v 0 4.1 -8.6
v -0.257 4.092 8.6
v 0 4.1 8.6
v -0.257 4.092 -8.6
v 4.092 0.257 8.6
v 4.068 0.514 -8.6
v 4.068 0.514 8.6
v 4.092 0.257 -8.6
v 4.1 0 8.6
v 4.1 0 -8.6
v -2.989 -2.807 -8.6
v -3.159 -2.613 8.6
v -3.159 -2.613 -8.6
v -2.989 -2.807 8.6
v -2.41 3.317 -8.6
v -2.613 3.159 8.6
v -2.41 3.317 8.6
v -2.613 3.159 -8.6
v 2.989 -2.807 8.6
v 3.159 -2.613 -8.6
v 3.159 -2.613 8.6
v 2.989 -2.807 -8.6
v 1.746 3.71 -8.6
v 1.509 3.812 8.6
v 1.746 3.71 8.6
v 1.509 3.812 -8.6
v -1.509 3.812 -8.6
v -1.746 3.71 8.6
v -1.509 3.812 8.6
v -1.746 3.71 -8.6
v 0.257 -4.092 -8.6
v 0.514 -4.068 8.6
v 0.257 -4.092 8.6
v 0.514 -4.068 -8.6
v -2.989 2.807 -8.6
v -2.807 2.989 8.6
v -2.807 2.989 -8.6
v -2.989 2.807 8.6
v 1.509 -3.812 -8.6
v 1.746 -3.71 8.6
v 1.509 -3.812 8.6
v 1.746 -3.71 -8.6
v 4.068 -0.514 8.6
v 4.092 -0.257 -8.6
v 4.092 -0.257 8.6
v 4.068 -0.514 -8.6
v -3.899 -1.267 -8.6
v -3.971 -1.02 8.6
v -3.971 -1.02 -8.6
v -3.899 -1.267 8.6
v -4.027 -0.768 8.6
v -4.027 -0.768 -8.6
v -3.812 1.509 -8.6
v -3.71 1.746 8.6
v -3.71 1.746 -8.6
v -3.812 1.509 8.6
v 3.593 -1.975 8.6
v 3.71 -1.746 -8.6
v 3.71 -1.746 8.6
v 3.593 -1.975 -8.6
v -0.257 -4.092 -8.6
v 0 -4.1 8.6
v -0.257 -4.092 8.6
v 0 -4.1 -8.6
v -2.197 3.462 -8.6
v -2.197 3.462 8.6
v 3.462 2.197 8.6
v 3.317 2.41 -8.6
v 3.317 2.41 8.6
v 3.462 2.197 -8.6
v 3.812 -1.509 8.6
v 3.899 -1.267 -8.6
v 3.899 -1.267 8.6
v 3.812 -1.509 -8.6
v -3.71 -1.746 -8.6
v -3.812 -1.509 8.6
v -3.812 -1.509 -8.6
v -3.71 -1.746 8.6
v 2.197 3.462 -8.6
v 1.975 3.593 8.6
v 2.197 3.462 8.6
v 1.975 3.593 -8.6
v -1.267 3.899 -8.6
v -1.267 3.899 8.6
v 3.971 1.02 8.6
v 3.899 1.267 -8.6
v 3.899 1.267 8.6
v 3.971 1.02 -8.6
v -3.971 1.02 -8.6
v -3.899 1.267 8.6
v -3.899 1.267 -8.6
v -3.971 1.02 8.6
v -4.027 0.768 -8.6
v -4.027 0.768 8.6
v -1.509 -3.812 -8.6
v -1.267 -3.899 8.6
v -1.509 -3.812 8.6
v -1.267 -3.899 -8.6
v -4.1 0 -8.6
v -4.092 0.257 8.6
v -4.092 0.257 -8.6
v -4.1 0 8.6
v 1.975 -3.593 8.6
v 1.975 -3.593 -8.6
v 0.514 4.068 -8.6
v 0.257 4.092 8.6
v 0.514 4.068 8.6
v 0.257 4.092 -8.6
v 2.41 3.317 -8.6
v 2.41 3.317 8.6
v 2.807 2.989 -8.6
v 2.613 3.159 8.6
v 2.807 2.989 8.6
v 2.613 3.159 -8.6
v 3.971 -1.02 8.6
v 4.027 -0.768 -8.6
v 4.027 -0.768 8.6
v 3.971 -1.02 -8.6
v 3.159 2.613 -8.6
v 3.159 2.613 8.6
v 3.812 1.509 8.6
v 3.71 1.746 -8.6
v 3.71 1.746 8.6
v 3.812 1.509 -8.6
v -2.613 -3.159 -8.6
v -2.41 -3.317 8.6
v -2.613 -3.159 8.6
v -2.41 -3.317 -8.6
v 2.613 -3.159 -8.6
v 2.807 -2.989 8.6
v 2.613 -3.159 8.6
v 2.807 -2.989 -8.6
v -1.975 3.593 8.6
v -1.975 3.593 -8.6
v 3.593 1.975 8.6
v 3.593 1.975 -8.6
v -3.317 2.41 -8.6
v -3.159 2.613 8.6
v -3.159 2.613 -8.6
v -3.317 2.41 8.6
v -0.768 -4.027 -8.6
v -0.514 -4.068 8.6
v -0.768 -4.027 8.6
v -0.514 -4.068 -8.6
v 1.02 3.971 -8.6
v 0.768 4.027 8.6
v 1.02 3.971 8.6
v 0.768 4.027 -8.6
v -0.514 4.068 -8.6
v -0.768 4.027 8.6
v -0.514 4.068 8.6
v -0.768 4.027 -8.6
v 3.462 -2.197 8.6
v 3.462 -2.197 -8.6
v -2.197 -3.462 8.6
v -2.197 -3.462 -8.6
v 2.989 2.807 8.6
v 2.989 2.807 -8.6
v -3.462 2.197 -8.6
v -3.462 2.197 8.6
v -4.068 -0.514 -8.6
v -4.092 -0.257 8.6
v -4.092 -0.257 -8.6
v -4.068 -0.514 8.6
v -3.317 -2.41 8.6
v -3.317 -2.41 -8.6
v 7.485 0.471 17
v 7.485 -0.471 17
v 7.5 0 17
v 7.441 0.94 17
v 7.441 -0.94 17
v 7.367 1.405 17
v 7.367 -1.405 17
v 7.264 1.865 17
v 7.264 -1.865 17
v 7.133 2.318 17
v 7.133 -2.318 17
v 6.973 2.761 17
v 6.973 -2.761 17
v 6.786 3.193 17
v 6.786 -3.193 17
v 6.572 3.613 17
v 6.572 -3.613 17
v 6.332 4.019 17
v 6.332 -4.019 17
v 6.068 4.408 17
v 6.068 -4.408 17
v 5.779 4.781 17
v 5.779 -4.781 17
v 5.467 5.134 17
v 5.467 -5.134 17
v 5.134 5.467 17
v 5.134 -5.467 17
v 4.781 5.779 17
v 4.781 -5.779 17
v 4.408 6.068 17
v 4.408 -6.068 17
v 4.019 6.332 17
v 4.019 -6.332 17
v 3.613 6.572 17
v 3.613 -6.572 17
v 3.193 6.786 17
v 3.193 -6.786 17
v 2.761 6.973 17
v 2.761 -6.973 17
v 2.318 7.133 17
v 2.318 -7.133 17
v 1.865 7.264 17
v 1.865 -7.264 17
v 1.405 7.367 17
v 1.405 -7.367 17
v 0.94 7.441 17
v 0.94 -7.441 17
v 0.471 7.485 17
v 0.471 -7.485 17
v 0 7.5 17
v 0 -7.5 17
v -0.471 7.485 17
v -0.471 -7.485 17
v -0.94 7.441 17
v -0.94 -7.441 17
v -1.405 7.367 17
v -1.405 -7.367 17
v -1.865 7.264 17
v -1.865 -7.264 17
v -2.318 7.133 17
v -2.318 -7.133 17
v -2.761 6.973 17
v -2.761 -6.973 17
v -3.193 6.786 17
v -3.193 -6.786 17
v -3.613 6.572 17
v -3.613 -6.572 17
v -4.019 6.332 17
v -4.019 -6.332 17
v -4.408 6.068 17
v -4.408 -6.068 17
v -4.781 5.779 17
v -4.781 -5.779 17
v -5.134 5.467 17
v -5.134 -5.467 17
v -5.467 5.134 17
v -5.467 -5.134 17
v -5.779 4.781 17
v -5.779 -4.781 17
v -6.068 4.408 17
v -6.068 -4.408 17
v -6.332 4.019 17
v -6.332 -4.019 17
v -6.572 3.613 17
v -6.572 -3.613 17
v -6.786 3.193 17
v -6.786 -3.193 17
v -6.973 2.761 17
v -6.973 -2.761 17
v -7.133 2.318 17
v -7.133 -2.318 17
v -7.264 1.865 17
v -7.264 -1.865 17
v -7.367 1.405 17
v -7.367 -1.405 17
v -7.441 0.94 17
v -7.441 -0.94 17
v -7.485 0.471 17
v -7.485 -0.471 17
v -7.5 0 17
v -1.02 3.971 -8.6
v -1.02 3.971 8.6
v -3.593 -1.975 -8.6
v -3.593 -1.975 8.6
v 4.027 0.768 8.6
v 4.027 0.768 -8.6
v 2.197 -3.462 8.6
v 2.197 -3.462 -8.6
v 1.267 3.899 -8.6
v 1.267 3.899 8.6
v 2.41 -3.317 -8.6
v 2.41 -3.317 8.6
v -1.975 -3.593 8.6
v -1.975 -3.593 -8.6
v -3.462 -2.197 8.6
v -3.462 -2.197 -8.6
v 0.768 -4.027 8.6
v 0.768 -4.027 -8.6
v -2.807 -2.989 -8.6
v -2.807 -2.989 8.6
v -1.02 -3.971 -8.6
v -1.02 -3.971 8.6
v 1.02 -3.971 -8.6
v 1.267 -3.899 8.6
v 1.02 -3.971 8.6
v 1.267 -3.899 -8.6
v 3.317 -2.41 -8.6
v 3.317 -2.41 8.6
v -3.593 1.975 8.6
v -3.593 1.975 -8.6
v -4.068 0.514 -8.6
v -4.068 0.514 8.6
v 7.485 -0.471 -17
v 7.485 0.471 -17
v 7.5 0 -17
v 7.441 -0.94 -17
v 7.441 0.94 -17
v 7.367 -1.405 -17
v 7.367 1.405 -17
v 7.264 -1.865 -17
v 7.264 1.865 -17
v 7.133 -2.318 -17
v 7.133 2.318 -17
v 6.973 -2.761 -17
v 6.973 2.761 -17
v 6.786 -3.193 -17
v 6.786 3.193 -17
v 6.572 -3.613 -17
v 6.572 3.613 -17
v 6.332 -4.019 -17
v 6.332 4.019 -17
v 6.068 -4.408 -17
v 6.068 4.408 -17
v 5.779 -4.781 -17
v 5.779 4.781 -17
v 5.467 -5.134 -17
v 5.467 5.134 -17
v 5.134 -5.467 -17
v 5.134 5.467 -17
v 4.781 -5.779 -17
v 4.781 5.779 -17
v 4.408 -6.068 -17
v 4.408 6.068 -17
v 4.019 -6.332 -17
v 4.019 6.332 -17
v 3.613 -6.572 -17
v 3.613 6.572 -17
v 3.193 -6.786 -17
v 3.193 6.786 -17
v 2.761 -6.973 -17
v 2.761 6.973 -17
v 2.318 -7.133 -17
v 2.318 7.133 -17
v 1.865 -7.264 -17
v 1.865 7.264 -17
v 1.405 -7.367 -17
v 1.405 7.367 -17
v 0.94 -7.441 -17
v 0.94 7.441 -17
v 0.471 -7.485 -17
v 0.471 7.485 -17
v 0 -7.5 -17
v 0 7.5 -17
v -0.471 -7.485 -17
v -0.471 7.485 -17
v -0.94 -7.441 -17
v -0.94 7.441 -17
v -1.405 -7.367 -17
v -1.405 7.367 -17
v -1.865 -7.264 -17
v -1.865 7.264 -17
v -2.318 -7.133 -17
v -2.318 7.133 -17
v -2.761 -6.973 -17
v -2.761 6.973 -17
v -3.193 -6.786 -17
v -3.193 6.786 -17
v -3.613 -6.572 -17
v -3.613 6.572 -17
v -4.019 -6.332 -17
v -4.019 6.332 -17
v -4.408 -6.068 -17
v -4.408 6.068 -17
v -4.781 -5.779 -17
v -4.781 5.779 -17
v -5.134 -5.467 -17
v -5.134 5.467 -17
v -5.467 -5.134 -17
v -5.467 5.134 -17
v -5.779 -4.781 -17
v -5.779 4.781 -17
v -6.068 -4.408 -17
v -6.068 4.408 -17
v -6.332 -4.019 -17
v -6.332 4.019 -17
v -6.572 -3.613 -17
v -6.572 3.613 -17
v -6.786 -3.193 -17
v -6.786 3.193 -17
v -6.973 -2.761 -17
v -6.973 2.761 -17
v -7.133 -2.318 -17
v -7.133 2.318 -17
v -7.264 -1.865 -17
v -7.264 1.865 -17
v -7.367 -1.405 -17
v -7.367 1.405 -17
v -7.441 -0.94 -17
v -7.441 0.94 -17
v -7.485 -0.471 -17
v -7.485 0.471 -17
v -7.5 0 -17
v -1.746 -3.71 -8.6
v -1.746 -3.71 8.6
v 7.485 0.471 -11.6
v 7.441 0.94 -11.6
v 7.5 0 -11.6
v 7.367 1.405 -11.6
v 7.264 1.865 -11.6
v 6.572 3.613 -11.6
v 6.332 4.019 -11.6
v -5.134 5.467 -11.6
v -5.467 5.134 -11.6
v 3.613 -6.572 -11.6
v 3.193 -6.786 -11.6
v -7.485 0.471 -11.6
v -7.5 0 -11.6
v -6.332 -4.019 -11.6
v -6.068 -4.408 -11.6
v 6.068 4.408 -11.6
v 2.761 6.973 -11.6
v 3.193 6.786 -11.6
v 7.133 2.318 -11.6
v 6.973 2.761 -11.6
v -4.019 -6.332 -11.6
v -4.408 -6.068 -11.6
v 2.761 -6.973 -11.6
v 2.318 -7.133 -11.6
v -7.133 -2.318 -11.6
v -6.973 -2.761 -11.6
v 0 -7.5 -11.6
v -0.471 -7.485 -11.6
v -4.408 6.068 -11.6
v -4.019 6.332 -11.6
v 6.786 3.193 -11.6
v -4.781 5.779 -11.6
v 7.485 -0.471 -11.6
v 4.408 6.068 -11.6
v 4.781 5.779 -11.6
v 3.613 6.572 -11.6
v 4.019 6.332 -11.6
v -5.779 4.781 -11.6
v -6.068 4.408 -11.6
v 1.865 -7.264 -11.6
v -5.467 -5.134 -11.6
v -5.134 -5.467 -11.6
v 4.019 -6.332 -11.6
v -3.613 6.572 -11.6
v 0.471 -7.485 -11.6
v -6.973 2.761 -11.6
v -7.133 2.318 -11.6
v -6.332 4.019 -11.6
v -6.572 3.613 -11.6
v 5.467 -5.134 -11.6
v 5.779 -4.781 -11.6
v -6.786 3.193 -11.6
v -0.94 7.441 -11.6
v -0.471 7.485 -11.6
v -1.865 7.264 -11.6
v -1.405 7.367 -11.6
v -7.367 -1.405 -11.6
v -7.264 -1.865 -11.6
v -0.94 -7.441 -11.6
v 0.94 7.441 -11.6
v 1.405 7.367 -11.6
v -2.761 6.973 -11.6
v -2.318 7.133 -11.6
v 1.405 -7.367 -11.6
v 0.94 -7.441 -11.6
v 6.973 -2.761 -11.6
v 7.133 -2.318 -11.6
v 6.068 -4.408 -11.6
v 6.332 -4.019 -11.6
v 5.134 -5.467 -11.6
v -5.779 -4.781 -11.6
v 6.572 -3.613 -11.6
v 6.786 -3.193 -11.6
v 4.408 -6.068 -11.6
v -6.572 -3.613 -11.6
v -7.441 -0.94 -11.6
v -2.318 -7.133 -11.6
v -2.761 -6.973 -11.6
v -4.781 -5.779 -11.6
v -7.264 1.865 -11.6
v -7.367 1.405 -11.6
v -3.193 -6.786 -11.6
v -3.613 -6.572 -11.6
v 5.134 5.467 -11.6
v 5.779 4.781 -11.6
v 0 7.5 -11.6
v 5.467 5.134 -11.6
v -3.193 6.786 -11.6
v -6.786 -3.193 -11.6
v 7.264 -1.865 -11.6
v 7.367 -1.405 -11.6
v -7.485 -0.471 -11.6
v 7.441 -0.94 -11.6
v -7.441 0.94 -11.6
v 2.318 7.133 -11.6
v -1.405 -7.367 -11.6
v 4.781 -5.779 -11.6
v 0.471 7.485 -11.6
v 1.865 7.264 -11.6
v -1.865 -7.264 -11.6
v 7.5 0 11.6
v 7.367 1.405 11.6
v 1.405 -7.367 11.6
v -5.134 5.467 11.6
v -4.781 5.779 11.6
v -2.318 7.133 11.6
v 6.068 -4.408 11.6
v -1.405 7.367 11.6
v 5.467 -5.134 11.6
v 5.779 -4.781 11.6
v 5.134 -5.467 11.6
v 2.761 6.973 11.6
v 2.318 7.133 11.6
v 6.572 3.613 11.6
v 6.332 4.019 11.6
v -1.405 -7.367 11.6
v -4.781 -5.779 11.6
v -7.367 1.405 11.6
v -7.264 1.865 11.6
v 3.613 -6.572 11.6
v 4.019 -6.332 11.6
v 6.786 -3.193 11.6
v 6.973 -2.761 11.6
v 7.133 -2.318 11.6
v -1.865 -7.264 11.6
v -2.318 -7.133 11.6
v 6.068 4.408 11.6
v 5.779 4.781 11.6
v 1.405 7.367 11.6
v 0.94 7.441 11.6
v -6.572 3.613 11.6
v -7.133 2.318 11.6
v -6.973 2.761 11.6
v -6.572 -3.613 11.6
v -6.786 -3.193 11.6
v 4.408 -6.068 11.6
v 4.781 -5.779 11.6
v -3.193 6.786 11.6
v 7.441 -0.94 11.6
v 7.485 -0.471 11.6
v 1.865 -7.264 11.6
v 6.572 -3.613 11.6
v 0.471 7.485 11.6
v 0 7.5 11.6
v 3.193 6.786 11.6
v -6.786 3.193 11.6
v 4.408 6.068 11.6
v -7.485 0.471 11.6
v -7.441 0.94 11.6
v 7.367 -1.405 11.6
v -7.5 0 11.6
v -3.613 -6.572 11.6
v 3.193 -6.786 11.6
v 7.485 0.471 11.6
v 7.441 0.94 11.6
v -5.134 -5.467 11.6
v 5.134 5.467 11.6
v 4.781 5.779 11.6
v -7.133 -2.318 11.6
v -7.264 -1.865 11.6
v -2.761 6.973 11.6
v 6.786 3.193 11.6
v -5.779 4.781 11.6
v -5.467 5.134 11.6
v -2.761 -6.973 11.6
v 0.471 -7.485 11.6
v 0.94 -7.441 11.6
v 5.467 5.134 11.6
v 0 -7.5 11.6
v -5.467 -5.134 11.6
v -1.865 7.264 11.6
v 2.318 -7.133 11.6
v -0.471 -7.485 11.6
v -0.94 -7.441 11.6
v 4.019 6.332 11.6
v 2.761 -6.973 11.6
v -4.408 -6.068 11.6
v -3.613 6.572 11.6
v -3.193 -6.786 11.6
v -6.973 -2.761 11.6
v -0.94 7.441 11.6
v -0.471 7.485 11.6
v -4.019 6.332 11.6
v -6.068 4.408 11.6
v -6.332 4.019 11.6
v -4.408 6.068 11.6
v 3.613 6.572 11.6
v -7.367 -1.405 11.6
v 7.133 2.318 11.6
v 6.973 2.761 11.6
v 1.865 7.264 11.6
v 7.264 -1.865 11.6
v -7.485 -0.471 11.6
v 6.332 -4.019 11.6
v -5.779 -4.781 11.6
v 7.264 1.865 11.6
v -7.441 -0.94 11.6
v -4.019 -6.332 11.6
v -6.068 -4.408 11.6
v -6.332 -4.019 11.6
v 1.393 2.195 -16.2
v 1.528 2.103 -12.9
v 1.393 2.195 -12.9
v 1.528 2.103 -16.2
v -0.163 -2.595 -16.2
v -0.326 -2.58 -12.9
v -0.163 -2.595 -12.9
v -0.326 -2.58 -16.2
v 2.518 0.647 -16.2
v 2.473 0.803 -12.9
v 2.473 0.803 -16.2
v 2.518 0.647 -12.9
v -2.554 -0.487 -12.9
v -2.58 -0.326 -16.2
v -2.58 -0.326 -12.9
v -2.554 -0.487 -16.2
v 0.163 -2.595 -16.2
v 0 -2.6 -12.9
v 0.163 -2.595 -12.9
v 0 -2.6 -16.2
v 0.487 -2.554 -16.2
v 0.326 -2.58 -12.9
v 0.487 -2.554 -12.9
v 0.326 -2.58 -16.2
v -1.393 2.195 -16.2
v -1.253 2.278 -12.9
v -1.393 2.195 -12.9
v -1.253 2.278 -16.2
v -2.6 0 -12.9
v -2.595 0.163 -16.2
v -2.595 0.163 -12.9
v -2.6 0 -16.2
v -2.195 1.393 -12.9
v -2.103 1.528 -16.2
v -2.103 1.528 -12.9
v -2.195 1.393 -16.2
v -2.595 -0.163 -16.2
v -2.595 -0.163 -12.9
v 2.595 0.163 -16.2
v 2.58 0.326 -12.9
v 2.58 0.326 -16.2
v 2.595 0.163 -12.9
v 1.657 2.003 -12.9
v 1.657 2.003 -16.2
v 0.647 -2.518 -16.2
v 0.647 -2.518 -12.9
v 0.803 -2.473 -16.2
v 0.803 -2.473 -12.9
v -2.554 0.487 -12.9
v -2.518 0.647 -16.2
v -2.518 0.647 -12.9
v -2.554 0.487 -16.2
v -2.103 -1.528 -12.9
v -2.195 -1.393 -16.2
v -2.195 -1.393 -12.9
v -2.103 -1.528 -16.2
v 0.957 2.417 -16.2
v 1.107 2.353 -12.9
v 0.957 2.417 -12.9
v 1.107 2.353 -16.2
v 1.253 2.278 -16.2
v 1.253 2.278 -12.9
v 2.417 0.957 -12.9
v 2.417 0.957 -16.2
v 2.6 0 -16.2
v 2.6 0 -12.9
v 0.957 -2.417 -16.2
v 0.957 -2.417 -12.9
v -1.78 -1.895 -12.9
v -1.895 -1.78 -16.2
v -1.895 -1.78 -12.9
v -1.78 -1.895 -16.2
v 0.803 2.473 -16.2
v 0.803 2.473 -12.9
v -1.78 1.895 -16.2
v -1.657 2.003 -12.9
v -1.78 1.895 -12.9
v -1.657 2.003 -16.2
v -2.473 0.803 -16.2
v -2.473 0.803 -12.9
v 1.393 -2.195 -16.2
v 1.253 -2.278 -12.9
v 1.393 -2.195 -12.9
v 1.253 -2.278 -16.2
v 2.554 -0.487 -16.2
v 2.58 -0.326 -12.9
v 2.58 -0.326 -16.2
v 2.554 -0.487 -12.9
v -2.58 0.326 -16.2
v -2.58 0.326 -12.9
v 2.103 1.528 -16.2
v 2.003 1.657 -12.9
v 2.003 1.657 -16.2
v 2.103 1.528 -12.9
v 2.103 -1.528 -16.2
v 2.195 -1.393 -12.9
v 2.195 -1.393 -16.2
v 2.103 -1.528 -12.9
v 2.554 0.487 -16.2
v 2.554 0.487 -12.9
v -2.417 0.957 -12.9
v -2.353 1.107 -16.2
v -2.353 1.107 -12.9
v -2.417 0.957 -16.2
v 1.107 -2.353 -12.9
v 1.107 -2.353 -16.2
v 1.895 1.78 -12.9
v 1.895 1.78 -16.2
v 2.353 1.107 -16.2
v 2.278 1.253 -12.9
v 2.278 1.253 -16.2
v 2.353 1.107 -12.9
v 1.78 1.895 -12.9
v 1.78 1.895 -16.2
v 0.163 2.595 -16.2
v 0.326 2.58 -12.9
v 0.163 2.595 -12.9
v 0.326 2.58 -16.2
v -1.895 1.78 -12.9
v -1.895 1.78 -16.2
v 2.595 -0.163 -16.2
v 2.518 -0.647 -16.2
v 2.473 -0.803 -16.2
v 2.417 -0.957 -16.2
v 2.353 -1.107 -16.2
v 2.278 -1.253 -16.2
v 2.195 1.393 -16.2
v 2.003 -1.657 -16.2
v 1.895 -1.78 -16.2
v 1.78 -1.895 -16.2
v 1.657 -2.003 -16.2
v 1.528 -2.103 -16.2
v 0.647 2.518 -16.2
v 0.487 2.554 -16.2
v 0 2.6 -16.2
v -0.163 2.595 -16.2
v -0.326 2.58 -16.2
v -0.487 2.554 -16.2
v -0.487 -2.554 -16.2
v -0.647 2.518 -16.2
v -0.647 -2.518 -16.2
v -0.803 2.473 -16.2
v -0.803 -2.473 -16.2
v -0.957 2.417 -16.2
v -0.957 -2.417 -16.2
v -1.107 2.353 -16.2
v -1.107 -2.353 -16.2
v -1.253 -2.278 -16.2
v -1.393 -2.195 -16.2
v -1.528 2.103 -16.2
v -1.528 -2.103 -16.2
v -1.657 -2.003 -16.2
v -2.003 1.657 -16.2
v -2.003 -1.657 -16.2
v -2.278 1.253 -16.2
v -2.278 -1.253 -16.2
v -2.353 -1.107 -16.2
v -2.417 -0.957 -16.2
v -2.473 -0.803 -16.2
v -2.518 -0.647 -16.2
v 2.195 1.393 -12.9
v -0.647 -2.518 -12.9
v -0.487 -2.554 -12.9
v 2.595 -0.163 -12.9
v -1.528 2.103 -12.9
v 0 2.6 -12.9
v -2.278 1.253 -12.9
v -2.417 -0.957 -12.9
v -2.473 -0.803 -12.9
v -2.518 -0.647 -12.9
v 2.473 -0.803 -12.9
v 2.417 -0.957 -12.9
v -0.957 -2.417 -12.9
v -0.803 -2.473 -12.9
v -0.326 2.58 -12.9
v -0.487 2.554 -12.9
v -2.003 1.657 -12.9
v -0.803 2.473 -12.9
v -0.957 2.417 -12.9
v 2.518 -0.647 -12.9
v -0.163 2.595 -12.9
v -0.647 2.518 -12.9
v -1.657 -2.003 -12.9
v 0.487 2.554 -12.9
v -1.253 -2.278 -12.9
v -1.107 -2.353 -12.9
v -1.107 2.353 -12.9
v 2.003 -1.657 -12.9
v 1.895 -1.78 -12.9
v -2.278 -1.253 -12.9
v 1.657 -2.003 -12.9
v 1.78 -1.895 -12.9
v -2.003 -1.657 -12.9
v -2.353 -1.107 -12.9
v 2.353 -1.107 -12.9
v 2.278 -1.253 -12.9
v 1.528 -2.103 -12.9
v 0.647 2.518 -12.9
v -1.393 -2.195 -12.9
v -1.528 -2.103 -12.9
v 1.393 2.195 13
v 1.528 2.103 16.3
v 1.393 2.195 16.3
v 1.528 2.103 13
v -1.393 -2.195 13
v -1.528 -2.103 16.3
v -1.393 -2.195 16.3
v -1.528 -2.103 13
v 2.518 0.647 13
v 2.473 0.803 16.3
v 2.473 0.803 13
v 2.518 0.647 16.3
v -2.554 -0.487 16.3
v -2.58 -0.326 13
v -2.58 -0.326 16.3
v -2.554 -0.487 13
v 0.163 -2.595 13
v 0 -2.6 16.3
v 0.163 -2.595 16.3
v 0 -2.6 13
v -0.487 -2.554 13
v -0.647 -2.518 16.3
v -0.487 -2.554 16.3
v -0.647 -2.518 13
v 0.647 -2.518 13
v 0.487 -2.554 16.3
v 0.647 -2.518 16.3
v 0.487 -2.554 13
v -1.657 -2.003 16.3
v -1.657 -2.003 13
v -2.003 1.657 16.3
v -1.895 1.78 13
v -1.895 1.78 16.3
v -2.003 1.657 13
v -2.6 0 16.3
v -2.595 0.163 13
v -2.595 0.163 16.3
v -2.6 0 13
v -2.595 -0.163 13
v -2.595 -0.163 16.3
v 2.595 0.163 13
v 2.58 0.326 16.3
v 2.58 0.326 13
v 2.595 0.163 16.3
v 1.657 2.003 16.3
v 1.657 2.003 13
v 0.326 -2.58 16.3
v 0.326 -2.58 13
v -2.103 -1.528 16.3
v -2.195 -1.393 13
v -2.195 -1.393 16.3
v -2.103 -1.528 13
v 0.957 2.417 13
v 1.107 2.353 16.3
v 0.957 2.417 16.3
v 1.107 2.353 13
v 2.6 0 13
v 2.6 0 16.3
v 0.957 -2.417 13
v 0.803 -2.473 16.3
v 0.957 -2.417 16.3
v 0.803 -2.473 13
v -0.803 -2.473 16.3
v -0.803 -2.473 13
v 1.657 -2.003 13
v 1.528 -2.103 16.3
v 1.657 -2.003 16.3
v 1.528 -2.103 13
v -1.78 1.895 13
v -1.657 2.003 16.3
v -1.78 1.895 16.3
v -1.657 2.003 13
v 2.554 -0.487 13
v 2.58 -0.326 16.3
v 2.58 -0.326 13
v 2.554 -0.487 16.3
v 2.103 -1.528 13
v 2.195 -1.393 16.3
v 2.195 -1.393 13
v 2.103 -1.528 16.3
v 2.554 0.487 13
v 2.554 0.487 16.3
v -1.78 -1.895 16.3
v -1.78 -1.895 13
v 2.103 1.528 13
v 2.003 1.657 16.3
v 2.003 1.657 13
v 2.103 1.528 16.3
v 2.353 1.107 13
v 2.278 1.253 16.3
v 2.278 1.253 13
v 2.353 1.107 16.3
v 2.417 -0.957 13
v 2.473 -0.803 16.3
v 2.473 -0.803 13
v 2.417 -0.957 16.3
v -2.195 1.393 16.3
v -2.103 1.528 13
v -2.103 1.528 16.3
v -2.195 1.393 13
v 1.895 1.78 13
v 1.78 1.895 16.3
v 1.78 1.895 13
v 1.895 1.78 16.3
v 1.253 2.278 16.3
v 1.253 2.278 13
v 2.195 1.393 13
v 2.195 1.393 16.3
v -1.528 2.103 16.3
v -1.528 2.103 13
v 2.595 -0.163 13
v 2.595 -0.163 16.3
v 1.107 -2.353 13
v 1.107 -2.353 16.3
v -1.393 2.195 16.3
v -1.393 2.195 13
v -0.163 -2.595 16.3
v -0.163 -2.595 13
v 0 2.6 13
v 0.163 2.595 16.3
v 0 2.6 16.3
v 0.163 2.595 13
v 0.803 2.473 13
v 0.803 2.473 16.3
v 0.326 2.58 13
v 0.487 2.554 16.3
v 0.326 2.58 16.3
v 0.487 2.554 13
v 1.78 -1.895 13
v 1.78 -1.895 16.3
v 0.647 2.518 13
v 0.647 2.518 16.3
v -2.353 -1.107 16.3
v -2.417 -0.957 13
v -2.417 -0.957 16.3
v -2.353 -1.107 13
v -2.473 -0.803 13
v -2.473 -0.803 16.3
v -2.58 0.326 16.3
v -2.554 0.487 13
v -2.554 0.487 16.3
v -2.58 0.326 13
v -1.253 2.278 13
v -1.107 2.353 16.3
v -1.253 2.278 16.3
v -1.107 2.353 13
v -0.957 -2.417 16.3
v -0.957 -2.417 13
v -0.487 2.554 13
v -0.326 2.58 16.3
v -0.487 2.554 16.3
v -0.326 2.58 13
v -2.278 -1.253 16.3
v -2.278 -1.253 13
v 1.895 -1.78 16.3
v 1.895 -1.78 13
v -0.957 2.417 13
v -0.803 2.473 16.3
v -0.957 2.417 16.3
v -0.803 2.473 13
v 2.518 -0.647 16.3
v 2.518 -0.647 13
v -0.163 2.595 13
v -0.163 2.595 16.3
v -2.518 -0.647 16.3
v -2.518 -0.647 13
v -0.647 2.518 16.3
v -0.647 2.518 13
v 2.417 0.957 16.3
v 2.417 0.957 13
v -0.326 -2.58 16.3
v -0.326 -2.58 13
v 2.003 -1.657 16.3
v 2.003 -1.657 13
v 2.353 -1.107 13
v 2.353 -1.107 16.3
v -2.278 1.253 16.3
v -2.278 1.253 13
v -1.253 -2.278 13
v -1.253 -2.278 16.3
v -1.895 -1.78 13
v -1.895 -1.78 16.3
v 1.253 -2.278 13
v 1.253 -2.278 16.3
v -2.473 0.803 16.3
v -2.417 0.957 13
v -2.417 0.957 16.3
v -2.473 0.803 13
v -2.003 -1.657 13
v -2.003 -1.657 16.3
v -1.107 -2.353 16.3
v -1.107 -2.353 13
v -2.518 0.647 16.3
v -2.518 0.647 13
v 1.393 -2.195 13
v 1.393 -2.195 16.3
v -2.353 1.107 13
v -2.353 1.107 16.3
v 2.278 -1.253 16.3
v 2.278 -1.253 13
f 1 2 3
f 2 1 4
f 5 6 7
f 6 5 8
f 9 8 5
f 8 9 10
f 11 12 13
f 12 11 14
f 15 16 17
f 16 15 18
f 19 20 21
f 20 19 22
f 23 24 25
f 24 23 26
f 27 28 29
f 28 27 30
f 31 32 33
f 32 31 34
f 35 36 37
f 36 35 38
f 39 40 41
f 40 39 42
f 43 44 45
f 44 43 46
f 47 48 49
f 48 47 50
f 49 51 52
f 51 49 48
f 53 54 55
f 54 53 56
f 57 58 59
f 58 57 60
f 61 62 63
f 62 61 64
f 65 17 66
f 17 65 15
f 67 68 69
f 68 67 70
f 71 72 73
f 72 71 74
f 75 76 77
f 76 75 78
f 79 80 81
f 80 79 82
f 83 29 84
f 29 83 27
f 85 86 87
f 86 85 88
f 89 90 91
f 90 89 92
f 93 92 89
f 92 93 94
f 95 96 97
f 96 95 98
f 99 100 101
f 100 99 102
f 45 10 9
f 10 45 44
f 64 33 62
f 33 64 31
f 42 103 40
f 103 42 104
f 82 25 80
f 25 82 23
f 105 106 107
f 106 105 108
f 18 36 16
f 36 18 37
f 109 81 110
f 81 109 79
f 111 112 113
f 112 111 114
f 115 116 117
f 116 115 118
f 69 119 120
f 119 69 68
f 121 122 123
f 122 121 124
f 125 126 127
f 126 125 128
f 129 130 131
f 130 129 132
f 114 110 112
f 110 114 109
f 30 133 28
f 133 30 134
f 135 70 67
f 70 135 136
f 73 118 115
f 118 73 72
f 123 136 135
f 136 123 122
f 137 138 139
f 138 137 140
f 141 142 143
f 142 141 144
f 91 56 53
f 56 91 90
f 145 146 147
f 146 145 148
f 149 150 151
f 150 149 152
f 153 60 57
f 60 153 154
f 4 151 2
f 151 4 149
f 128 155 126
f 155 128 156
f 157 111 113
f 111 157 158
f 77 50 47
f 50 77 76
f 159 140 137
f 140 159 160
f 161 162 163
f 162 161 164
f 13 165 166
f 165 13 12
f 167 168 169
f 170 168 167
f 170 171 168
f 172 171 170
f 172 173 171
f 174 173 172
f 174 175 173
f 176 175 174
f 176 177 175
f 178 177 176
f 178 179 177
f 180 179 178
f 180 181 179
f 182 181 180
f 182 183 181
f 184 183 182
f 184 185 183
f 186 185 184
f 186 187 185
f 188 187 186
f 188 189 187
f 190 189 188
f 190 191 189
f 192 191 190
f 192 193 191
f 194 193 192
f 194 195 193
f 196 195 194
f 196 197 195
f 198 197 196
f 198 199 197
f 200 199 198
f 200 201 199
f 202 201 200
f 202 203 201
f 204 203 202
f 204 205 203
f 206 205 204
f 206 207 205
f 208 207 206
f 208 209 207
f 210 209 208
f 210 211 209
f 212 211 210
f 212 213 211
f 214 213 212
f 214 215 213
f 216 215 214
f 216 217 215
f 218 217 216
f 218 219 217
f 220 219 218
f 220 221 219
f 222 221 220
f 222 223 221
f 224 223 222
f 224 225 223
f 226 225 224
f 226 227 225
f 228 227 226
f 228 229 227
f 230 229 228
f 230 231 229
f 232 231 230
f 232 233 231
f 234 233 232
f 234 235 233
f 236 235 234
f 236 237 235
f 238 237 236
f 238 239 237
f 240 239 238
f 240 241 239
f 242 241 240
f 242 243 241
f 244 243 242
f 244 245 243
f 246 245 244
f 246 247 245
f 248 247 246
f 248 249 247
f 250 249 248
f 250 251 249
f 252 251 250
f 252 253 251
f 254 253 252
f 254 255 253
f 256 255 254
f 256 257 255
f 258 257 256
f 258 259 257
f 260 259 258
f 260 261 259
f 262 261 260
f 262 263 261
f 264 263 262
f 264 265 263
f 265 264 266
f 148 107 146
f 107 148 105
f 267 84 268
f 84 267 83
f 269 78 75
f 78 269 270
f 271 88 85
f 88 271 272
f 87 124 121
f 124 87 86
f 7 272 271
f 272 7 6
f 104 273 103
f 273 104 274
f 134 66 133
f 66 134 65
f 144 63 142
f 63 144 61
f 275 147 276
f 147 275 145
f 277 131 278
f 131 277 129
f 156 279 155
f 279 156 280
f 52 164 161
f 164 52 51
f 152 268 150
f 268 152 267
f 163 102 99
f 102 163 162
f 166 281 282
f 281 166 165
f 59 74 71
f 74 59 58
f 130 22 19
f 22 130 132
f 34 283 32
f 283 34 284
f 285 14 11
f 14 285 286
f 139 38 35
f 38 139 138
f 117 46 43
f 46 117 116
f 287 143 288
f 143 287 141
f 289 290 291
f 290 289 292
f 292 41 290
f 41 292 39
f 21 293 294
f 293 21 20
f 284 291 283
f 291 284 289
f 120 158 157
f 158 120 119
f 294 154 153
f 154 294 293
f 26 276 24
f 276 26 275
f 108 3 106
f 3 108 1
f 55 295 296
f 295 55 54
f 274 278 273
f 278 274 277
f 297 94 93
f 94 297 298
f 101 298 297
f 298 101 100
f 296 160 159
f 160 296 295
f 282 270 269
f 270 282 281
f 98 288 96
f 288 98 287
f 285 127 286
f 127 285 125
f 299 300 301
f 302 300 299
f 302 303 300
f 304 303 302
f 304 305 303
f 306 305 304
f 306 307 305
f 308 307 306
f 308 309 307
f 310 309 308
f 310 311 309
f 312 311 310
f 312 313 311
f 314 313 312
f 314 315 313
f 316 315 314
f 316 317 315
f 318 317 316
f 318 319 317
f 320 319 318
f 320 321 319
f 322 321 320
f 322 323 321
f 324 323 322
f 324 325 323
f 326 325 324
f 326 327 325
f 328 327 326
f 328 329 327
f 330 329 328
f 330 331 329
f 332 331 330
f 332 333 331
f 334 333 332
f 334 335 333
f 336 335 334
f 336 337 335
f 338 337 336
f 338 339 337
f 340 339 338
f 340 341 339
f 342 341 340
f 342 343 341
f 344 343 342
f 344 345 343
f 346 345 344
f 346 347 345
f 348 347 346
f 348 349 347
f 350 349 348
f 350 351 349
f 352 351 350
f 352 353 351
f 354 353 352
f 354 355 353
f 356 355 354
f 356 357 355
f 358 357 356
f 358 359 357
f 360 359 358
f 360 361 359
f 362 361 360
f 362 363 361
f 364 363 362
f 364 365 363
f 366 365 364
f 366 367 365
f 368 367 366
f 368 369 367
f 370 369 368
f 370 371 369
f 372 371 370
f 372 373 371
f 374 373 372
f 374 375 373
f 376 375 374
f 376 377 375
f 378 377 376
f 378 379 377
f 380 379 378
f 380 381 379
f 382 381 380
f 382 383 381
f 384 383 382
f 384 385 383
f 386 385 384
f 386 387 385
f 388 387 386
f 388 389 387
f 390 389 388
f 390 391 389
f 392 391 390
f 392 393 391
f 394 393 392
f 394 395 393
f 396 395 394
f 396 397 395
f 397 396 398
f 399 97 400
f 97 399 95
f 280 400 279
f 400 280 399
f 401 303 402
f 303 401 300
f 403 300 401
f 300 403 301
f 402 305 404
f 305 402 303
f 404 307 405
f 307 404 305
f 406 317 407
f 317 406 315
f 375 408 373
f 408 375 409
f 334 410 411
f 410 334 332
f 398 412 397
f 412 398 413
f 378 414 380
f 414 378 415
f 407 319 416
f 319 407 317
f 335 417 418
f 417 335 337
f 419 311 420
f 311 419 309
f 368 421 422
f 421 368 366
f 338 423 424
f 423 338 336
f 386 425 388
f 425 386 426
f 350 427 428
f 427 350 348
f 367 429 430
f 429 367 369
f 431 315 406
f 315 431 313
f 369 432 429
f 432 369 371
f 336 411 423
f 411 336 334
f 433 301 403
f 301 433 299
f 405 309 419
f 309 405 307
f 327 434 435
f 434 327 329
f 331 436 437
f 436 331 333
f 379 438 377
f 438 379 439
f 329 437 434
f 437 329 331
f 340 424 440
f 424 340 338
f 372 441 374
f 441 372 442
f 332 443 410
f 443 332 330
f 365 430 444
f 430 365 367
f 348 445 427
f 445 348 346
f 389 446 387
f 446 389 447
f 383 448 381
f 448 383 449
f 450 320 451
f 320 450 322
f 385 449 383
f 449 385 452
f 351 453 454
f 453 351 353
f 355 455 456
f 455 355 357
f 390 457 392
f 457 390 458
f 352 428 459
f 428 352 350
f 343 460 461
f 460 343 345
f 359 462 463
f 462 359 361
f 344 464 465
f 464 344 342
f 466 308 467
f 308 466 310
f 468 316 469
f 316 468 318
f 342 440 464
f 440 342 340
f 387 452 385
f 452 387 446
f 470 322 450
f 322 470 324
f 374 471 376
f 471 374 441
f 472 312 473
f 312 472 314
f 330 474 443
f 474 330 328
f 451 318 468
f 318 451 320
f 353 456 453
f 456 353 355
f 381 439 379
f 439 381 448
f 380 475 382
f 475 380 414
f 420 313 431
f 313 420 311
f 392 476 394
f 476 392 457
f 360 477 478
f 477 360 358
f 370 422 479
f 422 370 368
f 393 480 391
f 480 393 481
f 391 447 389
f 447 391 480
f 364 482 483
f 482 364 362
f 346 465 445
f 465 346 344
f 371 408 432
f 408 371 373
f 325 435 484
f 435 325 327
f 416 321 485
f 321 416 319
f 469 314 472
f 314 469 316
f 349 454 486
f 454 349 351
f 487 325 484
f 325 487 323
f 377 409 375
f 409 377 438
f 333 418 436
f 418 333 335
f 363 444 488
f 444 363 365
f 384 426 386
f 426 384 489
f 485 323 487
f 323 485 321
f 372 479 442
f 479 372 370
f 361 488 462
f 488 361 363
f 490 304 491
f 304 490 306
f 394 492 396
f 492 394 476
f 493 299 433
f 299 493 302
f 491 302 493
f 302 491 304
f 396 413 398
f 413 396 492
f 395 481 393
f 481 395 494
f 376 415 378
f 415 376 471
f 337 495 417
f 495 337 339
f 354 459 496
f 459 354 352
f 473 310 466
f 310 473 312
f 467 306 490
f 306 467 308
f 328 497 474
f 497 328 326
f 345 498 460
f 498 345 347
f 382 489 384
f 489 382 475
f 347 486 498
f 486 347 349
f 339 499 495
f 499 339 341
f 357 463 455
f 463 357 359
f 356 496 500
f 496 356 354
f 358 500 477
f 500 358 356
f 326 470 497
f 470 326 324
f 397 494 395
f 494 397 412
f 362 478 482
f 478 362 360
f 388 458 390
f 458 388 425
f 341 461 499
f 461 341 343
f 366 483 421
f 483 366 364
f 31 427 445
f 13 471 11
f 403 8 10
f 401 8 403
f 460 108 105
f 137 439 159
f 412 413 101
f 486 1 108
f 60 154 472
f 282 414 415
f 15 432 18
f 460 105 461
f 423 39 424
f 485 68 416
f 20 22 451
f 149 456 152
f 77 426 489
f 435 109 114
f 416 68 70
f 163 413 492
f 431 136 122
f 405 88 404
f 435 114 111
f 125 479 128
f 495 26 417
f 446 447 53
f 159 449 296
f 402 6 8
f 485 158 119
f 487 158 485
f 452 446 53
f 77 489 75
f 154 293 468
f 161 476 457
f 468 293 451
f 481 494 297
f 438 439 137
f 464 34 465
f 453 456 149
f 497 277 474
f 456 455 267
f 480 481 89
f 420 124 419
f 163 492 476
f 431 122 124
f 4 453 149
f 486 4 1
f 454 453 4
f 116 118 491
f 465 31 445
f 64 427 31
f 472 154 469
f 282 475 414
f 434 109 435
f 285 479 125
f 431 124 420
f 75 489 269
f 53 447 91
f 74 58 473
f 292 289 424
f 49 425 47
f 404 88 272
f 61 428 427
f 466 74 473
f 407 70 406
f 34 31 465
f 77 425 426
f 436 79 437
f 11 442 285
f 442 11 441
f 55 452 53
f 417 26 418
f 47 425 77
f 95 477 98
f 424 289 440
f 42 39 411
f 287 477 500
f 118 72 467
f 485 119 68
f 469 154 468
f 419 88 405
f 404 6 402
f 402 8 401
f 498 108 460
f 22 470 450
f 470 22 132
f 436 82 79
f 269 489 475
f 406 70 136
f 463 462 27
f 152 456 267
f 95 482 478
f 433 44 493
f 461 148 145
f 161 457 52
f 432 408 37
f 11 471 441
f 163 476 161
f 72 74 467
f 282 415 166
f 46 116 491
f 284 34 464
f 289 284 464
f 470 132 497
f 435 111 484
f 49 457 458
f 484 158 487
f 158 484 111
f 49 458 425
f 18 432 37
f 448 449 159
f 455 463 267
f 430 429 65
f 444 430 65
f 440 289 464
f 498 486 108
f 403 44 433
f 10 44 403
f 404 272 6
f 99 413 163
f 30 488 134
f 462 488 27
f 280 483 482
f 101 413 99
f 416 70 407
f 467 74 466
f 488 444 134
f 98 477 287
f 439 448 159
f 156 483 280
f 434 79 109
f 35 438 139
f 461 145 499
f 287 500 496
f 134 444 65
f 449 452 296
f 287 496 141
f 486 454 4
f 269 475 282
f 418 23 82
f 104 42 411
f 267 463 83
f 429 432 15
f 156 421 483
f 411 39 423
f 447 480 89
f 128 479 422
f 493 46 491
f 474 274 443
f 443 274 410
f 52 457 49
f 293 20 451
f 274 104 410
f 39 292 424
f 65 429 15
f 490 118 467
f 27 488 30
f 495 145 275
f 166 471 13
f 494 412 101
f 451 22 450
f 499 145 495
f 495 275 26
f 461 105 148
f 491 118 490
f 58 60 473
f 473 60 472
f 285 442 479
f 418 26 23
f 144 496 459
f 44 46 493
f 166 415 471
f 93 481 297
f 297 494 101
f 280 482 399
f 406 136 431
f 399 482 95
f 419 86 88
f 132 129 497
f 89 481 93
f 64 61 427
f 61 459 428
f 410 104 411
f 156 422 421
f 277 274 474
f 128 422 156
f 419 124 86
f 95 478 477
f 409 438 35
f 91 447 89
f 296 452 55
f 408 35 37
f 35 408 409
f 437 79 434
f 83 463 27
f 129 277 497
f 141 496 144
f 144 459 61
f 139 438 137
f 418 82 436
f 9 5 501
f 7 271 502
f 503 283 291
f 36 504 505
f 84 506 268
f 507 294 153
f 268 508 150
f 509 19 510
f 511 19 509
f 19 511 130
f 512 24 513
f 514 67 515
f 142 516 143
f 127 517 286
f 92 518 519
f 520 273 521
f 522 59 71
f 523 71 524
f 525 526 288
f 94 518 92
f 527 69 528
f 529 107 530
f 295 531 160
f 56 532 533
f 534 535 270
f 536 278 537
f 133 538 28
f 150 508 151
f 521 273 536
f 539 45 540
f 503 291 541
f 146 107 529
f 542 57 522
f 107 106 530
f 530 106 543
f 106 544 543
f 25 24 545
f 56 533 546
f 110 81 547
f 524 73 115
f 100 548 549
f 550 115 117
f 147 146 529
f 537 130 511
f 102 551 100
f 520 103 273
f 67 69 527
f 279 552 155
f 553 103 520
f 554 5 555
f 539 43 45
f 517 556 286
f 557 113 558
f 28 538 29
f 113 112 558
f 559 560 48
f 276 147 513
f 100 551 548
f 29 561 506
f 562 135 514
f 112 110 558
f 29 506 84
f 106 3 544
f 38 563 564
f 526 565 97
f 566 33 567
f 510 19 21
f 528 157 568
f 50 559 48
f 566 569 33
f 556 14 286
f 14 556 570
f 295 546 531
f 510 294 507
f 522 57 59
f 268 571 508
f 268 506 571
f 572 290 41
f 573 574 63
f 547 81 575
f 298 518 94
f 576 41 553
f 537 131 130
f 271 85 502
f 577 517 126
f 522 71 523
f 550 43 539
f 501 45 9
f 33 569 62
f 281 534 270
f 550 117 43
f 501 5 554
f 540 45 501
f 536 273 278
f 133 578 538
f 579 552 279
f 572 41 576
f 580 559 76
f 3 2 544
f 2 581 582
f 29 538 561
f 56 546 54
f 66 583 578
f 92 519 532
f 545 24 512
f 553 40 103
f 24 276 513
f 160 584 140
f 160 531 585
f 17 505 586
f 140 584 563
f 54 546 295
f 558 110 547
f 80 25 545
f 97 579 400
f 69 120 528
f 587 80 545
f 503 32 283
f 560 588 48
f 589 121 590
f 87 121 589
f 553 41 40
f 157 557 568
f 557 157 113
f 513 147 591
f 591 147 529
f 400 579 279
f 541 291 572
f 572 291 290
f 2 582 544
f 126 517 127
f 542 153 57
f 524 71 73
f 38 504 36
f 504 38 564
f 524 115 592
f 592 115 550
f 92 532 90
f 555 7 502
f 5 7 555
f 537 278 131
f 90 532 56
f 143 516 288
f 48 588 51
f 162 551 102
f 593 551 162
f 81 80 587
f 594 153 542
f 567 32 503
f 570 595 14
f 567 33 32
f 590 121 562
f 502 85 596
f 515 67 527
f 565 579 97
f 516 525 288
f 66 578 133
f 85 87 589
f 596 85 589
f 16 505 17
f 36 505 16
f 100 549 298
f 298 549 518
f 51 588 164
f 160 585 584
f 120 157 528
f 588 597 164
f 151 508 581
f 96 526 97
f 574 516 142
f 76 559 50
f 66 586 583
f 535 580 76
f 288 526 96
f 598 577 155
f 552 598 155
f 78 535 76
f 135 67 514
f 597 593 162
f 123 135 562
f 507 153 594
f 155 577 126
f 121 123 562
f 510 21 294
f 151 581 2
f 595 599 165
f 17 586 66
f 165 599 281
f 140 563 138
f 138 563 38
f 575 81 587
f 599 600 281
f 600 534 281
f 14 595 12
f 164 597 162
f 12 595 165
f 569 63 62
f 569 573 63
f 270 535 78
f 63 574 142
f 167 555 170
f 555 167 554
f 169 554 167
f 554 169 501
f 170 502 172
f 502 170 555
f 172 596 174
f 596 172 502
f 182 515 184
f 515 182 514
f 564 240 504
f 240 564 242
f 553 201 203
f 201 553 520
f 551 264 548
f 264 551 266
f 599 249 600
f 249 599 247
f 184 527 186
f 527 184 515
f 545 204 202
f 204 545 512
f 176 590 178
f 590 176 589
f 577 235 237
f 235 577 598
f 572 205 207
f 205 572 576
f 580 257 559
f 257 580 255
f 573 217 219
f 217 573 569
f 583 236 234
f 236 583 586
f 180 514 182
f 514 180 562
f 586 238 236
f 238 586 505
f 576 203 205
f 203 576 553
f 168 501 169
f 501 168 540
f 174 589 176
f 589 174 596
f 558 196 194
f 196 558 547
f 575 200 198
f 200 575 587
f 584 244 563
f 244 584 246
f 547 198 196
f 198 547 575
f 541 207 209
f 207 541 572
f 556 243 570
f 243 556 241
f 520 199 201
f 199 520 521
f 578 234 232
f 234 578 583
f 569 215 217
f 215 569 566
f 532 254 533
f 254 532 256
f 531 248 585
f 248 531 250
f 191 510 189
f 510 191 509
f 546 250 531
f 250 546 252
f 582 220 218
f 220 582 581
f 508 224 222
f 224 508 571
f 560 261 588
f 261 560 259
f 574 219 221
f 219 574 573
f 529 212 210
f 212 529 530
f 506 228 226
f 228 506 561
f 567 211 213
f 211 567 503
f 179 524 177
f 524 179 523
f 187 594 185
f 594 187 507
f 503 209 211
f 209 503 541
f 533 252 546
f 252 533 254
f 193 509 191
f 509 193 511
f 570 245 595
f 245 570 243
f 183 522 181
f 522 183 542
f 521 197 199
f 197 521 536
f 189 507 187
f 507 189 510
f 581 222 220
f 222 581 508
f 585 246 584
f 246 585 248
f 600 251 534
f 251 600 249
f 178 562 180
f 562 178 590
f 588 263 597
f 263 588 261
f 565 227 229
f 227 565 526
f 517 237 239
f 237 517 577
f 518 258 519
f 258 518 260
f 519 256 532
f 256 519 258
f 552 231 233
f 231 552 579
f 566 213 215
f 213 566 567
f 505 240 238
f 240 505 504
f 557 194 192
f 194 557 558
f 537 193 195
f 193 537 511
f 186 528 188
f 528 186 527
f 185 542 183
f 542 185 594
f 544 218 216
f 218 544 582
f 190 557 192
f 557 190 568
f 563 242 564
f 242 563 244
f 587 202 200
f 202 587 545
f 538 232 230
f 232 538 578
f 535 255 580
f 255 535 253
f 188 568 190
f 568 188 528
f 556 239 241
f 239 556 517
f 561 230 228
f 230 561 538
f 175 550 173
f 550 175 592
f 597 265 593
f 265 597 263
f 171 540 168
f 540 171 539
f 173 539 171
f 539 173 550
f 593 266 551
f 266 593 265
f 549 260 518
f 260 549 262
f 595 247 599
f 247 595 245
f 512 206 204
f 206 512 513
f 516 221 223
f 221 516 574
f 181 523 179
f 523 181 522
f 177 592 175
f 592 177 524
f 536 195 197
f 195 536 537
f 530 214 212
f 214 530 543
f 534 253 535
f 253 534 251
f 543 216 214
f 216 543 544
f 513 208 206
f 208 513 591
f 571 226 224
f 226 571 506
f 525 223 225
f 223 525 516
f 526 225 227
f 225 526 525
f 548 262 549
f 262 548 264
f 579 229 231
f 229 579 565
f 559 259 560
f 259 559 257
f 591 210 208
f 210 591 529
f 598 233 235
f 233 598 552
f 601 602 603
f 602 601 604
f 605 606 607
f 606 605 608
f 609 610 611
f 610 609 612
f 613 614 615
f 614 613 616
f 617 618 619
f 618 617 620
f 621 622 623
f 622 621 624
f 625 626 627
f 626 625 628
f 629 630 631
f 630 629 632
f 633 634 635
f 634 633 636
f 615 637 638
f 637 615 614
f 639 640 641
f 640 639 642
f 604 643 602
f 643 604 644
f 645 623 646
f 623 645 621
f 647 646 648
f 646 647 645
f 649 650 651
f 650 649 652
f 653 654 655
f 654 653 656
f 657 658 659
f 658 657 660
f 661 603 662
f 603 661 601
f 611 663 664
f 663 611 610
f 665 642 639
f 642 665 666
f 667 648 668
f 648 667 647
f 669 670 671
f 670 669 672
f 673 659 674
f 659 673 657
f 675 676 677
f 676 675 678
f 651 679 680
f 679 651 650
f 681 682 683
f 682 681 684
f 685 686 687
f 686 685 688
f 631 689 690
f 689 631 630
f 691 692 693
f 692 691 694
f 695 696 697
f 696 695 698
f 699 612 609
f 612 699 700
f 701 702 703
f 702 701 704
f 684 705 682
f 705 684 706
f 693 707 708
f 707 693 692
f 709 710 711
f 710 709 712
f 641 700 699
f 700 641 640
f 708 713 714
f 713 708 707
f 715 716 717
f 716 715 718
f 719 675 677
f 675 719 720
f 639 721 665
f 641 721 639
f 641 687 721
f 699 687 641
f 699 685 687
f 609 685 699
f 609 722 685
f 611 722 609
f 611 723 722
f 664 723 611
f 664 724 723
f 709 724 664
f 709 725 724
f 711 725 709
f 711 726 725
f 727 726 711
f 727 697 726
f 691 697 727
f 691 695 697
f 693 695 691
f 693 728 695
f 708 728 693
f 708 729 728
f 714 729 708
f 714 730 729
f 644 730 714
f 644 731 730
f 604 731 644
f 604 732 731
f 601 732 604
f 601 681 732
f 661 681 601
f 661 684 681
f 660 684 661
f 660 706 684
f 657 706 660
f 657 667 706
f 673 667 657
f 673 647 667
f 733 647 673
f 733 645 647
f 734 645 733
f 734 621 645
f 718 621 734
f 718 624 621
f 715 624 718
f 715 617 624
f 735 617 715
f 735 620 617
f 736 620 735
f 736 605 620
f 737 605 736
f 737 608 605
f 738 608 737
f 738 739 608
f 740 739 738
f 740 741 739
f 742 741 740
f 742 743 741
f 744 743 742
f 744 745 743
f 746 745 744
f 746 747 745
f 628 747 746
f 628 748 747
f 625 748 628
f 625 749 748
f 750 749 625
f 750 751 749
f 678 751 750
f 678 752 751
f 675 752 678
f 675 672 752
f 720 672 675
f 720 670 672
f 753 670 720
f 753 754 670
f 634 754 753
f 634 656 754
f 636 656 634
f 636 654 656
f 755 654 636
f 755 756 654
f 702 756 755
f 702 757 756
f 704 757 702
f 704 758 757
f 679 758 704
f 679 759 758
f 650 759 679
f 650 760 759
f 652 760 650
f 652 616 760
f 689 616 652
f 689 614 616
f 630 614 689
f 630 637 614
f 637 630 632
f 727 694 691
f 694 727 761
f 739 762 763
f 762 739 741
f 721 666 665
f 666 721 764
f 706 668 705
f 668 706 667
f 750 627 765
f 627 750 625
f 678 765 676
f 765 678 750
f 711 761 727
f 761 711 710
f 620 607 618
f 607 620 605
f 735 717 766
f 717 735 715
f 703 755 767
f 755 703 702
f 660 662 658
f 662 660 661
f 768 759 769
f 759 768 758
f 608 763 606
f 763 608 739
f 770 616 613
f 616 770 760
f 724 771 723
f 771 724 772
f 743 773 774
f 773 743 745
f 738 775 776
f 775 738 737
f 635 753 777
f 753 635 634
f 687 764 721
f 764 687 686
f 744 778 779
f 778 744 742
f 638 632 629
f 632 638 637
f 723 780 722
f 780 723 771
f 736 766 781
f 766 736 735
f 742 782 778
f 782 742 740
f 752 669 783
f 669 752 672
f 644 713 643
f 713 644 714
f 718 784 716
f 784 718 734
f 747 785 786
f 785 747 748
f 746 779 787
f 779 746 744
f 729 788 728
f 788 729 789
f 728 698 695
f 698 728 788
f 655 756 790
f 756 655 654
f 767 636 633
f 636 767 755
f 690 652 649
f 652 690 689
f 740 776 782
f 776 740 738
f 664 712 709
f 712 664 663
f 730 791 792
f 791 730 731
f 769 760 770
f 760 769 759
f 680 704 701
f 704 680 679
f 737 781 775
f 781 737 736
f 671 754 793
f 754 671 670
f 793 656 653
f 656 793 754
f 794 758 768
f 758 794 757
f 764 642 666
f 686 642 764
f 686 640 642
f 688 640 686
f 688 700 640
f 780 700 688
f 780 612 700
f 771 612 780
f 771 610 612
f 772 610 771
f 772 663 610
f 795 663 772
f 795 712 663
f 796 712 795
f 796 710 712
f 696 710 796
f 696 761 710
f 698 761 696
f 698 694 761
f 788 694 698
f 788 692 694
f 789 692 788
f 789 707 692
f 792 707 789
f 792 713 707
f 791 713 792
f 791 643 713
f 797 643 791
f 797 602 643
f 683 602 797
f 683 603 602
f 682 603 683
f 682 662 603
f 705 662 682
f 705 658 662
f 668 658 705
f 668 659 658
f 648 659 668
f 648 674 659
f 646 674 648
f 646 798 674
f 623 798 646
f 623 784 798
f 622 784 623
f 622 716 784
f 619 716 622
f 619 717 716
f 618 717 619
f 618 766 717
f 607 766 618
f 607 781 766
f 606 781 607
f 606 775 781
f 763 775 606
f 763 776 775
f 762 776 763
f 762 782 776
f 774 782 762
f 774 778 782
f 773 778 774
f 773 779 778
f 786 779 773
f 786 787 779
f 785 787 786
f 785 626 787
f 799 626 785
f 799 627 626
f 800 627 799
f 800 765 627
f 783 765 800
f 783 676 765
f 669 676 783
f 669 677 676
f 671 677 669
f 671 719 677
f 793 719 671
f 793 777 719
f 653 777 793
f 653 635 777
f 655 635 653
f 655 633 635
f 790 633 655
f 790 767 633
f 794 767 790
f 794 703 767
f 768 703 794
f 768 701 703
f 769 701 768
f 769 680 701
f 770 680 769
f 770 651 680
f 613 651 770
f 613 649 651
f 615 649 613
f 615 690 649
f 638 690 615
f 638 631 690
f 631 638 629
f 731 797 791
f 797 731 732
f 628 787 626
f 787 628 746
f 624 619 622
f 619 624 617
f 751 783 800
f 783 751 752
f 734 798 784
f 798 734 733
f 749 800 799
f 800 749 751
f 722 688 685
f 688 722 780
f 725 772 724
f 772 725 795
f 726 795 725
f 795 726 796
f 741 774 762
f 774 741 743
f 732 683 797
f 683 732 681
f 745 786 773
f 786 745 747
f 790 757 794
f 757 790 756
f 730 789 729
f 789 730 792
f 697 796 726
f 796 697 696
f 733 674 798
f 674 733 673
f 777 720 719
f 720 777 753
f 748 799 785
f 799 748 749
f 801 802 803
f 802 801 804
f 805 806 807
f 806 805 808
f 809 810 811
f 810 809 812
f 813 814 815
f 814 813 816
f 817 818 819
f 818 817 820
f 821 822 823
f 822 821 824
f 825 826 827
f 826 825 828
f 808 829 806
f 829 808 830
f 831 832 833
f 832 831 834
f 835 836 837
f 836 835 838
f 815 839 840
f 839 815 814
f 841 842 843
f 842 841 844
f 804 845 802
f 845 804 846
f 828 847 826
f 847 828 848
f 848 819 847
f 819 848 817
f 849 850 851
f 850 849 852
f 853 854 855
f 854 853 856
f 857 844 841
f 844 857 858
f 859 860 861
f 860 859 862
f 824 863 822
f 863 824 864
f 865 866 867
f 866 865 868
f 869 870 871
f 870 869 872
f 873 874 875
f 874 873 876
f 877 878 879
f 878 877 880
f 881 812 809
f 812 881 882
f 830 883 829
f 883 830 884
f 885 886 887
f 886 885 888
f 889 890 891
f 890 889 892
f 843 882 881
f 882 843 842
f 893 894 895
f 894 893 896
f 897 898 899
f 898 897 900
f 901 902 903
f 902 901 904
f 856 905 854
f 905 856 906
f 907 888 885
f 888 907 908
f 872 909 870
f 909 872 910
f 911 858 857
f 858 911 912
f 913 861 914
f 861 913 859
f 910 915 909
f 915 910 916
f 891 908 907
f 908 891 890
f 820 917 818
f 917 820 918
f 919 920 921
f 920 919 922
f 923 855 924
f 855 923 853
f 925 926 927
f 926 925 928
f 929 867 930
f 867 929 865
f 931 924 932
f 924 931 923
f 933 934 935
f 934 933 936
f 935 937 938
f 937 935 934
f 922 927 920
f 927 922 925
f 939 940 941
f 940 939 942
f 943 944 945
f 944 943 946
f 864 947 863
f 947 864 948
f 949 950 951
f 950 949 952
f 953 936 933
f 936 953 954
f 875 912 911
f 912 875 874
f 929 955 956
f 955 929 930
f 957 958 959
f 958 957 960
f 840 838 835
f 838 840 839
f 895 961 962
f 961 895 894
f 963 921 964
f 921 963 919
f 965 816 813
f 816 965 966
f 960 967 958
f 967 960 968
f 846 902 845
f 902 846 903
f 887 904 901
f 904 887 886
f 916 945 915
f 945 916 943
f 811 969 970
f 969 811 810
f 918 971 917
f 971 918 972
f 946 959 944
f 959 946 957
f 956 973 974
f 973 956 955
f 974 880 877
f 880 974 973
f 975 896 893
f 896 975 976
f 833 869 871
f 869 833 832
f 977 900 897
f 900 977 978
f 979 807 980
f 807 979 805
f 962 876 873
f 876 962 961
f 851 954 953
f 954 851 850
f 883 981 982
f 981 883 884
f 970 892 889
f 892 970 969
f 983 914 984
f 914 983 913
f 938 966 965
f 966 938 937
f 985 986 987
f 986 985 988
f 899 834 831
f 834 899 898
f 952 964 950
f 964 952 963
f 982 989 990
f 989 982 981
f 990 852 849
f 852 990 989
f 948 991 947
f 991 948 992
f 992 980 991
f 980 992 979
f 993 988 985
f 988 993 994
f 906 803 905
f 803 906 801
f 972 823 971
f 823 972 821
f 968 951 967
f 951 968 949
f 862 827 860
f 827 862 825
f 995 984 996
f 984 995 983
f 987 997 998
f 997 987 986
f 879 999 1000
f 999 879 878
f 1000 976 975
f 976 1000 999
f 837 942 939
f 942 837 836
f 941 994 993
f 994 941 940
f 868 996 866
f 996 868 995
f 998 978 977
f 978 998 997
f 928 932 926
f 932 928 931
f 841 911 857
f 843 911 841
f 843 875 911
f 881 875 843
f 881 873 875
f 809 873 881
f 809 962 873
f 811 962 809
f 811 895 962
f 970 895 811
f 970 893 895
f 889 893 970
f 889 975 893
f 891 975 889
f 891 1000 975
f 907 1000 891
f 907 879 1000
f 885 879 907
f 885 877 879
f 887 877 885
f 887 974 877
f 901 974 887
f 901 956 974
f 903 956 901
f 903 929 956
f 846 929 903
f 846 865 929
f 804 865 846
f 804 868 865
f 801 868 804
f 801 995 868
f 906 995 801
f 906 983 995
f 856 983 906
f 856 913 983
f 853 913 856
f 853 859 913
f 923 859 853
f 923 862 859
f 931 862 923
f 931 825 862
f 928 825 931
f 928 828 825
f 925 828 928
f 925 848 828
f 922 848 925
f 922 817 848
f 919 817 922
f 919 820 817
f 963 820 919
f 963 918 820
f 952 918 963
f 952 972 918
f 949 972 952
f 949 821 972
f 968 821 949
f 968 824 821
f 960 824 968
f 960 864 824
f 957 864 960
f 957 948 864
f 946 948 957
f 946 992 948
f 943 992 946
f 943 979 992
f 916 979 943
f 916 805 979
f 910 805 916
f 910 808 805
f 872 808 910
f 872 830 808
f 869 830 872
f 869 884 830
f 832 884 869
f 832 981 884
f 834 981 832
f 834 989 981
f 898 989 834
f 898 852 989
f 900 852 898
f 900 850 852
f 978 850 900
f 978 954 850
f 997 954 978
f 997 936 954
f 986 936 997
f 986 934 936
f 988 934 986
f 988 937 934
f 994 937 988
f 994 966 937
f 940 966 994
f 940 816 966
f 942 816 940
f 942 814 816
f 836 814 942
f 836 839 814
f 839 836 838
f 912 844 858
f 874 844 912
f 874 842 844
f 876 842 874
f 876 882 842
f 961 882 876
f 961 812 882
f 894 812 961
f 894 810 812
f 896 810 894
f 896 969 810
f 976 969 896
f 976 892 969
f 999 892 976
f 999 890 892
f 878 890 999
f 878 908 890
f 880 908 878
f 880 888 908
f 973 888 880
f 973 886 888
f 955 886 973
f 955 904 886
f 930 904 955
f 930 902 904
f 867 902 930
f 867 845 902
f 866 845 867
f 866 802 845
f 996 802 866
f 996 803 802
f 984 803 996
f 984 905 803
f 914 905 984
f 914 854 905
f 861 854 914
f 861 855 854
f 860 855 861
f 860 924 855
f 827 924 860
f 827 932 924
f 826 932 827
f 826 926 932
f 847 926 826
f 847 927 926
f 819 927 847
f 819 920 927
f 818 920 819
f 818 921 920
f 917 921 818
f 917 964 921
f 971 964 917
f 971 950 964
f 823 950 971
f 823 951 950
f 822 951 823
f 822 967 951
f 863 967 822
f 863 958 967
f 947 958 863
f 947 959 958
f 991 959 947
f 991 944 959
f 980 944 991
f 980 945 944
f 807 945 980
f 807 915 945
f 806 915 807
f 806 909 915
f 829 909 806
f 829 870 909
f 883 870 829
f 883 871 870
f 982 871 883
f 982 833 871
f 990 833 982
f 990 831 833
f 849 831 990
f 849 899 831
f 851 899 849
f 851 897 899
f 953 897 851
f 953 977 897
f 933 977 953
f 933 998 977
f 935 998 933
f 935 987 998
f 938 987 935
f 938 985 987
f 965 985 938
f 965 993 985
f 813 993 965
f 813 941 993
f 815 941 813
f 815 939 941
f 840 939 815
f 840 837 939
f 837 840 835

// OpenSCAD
// Parameters
axle_length = 34;
axle_diameter = 8.2;
outer_rim_diameter = 15;
rim_depth = 5.4;
transition_height = 3;
resolution = 100;

// Magnet pocket parameters
magnet_diameter = 5.2;      // 5mm magnet with clearance - adjustable
magnet_thickness = 3.2;     // 3mm magnet with clearance - adjustable
pocket_inset = 0.8;         // Distance from rim edge to pocket
pocket_depth = magnet_thickness;         // Depth of magnet pockets

// Center the whole part on the origin
translate([0, 0, -axle_length/2]) {
    difference() {
        union() {
            // Main axle shaft
            cylinder(h = axle_length, d = axle_diameter, $fn = resolution);
            
            // Bottom rim with transition
            cylinder(h = rim_depth, d = outer_rim_diameter, $fn = resolution);
            translate([0, 0, rim_depth])
                cylinder(h = transition_height, d1 = outer_rim_diameter, d2 = axle_diameter, $fn = resolution);
            
            // Top rim with transition
            translate([0, 0, axle_length - rim_depth - transition_height])
                cylinder(h = transition_height, d1 = axle_diameter, d2 = outer_rim_diameter, $fn = resolution);
            translate([0, 0, axle_length - rim_depth])
                cylinder(h = rim_depth, d = outer_rim_diameter, $fn = resolution);
        }
        
        // Bottom magnet pocket
        translate([0, 0, pocket_inset])
            cylinder(h = pocket_depth + 0.1, d = magnet_diameter, $fn = resolution);
        
        // Top magnet pocket
        translate([0, 0, axle_length - pocket_depth - pocket_inset])
            cylinder(h = pocket_depth + 0.1, d = magnet_diameter, $fn = resolution);
    }
}
